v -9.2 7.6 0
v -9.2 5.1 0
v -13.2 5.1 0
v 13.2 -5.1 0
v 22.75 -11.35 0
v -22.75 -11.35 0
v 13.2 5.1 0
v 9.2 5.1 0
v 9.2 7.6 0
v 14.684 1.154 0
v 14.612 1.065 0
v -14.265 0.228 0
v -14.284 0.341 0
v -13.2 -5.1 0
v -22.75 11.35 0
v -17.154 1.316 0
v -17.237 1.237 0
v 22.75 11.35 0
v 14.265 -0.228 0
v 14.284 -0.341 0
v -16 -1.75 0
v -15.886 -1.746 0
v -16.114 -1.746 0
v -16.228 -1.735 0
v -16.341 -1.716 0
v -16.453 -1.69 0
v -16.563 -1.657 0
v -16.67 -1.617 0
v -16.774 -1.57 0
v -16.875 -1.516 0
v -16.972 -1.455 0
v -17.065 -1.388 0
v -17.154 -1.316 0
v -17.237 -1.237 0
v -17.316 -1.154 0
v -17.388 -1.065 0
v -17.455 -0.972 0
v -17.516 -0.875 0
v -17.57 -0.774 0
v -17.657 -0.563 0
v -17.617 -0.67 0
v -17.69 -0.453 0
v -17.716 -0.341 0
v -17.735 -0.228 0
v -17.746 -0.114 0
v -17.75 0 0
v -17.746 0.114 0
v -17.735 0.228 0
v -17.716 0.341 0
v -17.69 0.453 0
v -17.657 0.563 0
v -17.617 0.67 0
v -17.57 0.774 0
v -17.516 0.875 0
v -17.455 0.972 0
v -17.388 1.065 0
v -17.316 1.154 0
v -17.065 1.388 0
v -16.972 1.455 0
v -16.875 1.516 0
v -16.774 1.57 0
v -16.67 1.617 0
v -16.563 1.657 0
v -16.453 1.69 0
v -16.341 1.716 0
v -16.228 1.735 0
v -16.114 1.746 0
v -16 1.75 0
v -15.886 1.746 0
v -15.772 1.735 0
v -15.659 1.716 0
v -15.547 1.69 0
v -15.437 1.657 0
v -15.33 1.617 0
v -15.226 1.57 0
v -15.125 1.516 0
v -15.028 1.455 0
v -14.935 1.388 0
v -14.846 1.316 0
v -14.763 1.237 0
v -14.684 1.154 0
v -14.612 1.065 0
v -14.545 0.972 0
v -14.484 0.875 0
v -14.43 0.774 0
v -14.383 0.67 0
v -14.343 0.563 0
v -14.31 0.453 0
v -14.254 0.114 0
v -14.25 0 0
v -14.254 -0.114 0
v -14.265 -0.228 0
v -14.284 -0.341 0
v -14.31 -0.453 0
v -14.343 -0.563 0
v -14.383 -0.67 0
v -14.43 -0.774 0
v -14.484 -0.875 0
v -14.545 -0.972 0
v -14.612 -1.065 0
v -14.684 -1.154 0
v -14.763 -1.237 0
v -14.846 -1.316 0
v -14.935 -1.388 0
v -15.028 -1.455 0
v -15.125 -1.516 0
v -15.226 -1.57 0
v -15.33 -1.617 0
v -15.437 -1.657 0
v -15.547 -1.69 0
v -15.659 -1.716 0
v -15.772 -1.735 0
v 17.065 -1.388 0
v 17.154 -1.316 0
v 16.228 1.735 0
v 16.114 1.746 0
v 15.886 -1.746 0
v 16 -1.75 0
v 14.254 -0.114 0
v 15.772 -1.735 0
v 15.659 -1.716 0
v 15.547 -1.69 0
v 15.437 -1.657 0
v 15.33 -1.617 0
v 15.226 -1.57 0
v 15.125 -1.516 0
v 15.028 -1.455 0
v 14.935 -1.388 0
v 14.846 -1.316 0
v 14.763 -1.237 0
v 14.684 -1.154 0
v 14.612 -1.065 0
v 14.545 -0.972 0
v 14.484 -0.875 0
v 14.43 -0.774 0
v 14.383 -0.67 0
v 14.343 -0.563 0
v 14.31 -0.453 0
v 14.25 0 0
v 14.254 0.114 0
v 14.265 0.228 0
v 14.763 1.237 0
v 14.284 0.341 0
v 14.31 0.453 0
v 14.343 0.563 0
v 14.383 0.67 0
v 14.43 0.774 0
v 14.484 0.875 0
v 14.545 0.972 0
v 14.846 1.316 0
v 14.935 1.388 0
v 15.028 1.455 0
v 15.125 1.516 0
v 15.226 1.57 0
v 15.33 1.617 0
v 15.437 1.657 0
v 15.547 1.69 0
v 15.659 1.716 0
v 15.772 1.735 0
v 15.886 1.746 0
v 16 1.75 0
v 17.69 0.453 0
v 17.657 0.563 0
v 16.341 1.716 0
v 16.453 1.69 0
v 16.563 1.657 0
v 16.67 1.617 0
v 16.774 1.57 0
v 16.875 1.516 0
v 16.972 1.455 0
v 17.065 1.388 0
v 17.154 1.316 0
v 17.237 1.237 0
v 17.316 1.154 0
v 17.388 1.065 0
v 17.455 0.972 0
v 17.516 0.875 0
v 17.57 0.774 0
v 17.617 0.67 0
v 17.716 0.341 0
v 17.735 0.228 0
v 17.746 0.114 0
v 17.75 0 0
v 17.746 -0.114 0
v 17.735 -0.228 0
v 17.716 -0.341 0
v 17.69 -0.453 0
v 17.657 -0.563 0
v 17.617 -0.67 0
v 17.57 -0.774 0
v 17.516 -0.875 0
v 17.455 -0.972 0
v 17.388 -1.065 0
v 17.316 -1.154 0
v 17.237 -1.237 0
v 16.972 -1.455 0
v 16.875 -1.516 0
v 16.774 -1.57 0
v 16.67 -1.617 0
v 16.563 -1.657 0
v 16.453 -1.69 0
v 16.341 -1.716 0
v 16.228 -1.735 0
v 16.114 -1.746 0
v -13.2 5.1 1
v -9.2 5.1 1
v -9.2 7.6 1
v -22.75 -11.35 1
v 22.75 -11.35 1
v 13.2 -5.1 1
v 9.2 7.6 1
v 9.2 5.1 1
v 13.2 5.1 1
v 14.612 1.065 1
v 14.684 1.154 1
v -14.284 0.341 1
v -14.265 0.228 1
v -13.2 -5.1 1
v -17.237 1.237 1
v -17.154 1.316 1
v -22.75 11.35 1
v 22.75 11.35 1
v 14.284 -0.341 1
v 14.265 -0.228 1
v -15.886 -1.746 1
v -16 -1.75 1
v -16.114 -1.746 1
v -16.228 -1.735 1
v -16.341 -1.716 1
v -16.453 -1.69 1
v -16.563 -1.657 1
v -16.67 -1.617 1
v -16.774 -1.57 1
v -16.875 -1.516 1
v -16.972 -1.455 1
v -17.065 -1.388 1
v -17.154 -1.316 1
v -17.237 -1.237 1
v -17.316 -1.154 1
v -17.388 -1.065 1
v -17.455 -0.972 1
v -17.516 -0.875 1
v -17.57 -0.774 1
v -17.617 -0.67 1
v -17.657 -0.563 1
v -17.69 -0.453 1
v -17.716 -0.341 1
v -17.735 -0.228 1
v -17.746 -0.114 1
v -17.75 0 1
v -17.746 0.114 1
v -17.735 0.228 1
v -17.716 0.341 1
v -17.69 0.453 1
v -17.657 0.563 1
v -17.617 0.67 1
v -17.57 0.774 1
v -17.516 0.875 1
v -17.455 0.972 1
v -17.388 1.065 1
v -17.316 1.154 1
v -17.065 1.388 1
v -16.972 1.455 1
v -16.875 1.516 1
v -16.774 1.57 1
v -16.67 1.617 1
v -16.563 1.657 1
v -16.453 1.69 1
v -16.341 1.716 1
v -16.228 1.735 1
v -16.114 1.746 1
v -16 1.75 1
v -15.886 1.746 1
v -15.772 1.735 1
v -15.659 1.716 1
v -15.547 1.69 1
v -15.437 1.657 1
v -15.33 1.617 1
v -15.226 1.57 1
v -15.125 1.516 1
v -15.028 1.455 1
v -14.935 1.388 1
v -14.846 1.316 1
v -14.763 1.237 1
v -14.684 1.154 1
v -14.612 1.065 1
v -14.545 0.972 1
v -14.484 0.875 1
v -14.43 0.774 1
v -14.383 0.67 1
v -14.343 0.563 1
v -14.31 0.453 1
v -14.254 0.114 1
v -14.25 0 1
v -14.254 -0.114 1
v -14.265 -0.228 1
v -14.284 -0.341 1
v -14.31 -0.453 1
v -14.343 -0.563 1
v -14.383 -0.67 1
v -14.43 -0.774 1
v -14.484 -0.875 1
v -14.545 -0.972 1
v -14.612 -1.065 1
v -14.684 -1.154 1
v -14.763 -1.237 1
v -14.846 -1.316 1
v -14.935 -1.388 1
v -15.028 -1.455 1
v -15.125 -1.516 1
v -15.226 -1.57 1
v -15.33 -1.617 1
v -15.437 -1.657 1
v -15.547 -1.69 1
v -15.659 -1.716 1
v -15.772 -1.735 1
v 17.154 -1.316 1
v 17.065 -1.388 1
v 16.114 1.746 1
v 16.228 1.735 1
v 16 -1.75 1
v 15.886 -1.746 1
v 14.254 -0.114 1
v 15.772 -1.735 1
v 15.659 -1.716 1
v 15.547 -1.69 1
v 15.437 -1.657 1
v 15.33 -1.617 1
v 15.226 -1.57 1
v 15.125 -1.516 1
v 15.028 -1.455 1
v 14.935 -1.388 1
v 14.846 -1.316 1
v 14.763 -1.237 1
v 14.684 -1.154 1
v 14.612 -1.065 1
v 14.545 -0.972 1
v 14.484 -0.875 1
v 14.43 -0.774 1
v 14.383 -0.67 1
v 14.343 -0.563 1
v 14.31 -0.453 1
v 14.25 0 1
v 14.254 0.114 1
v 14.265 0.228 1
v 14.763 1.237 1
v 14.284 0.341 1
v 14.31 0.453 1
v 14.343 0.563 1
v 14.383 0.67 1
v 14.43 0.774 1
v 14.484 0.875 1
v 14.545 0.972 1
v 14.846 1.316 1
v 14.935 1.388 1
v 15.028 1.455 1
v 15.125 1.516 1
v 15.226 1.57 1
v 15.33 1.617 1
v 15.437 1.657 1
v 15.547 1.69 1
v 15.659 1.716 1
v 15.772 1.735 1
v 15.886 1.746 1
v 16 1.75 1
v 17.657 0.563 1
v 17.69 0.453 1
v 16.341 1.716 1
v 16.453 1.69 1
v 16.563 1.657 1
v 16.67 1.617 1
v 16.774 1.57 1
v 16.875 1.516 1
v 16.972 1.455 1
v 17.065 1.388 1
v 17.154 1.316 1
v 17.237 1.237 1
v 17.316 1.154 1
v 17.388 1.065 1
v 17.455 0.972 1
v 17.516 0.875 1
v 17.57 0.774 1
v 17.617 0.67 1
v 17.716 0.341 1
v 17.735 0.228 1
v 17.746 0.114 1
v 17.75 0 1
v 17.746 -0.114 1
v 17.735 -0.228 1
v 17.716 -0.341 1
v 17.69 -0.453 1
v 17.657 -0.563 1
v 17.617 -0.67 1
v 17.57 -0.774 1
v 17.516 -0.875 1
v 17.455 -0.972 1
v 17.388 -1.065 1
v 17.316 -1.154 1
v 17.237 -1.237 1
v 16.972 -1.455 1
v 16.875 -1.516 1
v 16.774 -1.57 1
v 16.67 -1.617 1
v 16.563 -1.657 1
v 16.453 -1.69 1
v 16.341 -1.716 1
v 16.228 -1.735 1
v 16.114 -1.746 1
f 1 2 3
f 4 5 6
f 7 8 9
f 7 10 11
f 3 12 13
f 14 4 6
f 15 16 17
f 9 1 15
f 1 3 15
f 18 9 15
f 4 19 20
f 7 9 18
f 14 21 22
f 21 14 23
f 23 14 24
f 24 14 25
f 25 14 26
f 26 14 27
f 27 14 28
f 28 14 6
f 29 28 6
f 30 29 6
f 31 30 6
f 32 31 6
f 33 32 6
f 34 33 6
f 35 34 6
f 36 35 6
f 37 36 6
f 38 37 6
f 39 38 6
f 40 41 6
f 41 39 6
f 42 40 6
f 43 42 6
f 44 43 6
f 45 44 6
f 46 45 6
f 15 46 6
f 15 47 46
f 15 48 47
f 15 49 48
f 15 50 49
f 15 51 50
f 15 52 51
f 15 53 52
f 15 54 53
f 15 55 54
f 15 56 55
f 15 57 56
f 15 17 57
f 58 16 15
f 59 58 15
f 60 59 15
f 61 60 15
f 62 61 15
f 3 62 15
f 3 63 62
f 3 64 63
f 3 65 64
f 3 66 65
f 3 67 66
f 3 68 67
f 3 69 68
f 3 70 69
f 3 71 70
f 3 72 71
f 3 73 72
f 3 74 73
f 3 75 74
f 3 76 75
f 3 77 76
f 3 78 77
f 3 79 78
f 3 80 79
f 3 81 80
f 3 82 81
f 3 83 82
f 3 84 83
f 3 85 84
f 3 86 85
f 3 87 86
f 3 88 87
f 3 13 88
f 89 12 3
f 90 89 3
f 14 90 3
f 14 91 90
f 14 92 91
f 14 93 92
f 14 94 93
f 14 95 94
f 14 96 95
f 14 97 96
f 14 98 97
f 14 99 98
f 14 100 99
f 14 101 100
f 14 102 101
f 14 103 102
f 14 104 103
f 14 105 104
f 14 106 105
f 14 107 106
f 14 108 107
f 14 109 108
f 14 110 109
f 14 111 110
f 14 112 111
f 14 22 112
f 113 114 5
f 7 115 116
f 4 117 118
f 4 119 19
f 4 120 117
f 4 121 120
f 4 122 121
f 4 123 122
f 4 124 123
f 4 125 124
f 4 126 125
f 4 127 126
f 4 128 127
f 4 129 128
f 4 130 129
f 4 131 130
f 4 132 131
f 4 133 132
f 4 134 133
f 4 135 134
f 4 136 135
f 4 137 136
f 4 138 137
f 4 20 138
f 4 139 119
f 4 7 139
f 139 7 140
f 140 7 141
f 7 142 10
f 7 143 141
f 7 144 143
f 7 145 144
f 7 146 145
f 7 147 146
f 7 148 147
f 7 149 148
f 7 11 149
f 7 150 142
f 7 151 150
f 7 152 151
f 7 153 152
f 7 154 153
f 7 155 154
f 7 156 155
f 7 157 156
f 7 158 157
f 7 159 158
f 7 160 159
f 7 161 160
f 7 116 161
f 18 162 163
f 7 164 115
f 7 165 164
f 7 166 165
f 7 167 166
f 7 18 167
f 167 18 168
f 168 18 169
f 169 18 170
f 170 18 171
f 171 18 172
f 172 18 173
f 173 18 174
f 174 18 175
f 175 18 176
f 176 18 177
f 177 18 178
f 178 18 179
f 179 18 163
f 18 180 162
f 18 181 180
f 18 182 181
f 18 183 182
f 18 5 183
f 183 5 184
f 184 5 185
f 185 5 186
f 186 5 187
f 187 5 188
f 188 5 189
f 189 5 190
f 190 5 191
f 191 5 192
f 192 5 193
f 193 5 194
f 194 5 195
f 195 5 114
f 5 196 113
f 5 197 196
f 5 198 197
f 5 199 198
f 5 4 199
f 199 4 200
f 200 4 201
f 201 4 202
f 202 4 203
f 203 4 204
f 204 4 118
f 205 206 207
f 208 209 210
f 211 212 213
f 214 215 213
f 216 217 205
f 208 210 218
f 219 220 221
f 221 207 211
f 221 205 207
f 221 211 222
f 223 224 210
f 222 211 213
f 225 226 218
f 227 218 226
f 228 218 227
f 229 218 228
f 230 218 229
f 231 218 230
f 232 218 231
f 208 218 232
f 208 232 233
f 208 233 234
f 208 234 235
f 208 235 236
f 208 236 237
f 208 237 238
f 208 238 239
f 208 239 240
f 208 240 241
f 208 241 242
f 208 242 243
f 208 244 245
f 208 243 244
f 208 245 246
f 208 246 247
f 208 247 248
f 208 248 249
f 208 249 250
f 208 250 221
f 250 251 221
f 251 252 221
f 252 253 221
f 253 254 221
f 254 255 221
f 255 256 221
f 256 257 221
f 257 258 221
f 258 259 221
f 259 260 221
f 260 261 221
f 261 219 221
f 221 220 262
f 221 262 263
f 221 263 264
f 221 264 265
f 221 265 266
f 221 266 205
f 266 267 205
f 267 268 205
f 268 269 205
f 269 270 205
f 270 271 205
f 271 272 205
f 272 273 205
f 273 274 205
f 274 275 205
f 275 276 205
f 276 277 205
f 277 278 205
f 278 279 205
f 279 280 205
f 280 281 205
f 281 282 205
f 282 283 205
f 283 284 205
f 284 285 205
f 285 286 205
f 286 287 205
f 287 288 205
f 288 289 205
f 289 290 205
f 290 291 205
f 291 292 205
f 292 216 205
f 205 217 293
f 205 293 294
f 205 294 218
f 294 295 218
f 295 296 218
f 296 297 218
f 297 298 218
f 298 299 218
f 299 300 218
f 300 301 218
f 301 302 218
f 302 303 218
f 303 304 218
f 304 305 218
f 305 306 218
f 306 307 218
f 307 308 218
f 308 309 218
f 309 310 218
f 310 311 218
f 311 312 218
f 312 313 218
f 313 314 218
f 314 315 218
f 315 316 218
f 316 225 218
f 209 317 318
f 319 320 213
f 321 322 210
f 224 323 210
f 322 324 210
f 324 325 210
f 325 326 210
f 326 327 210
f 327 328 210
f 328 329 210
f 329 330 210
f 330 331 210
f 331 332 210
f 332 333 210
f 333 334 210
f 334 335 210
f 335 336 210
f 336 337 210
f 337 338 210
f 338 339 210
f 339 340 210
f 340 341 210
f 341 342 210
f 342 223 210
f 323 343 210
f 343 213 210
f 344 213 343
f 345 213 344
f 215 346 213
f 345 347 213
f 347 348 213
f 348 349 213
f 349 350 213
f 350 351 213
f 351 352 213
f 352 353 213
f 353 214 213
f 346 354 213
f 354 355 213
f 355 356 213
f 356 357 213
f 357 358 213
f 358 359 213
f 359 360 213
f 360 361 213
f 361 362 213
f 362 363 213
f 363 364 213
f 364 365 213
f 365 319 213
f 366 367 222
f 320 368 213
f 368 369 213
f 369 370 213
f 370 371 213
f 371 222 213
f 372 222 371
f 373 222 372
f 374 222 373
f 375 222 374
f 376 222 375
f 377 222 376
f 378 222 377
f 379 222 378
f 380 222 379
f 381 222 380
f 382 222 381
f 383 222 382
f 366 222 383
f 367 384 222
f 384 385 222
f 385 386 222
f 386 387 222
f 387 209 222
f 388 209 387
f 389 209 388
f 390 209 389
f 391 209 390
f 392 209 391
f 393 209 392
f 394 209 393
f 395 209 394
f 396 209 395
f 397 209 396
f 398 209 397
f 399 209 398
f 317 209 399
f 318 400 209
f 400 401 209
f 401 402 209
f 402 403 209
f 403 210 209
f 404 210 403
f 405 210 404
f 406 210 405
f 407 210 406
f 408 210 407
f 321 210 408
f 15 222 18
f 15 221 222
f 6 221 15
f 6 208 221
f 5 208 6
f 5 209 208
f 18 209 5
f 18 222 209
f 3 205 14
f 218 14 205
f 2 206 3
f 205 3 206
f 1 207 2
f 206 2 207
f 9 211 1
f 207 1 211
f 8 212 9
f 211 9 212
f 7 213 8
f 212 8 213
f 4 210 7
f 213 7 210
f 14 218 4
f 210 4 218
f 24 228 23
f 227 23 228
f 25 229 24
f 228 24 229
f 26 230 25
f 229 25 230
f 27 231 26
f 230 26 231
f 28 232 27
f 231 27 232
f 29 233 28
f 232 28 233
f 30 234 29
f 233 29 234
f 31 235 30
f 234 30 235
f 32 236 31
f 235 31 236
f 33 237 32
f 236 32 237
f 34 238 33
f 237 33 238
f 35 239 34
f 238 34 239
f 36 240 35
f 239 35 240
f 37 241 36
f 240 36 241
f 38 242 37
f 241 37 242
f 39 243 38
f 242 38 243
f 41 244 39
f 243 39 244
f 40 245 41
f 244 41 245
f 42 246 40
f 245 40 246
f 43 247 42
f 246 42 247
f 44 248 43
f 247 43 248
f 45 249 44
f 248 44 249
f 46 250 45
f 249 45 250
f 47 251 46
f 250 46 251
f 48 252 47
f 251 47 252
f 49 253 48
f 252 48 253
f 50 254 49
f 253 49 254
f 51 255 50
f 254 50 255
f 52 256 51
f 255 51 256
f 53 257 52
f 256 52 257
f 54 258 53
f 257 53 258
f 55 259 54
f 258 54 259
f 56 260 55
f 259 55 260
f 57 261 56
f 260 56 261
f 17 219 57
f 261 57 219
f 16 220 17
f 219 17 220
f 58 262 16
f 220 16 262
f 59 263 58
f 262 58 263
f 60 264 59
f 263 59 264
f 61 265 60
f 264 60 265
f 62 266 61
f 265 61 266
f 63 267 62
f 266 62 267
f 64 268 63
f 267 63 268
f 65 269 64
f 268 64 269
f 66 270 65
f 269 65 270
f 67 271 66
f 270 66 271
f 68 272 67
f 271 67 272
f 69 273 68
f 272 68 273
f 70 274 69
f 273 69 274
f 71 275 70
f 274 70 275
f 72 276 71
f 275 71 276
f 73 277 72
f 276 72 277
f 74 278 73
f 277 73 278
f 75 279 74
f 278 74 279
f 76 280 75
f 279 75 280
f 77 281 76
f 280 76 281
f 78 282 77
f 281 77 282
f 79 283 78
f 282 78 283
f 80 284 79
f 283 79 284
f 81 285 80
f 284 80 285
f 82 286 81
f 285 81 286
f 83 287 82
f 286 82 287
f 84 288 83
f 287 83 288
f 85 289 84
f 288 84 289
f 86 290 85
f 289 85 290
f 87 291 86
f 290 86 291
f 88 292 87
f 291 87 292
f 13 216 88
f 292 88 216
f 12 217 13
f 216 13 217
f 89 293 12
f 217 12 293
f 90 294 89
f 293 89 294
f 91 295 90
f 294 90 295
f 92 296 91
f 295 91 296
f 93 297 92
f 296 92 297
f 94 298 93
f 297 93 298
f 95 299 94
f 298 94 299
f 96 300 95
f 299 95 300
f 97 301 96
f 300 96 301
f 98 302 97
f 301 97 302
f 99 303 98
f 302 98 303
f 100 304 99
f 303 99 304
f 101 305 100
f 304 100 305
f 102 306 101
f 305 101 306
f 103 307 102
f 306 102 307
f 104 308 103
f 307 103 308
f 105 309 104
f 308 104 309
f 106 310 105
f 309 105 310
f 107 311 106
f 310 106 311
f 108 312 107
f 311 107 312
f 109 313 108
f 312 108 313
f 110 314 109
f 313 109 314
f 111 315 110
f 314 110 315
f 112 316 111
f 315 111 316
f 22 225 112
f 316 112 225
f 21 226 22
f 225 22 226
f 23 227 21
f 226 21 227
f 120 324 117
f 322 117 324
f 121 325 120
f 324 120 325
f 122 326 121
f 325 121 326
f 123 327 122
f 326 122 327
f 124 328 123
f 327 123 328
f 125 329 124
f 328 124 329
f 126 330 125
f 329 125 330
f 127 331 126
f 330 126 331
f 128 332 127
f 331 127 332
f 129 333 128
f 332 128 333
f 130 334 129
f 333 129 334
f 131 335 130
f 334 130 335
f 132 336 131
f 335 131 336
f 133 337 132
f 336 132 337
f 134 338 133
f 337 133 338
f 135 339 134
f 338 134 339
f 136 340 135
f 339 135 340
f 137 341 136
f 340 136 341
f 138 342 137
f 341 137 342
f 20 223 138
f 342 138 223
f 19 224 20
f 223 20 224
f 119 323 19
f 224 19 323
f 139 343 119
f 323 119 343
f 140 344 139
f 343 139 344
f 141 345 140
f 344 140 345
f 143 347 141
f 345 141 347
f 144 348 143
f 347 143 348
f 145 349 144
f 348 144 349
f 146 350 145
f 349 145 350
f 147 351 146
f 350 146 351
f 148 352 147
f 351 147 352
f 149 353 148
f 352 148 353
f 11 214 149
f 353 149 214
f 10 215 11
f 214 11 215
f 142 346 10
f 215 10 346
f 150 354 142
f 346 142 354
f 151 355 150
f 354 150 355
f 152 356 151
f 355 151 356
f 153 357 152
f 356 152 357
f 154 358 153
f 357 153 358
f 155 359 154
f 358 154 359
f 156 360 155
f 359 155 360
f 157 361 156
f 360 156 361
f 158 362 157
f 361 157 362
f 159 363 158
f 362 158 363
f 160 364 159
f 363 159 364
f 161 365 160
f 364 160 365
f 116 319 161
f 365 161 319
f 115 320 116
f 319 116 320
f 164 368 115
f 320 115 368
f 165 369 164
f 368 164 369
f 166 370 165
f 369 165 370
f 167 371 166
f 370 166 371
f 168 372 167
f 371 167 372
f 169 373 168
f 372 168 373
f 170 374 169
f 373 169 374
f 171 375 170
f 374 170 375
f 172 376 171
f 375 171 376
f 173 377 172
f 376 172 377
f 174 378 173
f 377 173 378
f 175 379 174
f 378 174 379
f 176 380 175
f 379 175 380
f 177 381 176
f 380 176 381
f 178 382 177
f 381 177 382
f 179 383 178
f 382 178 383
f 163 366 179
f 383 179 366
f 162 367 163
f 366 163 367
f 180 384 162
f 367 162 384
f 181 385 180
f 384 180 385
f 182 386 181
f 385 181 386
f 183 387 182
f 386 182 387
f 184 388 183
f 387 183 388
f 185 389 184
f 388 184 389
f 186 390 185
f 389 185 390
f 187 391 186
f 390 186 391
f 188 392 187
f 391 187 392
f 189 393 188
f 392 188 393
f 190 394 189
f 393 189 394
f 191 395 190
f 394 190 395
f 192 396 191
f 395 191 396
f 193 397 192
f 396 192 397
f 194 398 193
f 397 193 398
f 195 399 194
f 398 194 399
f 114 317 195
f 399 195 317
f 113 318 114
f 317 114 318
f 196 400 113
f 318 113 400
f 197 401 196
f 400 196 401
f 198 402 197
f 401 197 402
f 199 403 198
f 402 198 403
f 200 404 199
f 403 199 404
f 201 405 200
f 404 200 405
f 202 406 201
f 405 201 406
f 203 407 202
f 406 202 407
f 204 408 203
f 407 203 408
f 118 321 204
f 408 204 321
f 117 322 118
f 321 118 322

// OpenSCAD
thickness = 1;
hole_spacing = 32;
hole_diameter = 3.5;
cutout_x = 26.4;
cutout_y = 10.2;
offset_width = 18.4;
offset_length = 2.5;
edge_margin = 5;

$fn = 96;

plate_length = hole_spacing + hole_diameter + 2 * edge_margin;
plate_width = max(hole_diameter, cutout_y + offset_length) + 2 * edge_margin;

assert(thickness > 0, "Thickness must be positive.");
assert(hole_diameter > 0, "Hole diameter must be positive.");
assert(cutout_x > 0 && cutout_y > 0, "Cutout dimensions must be positive.");
assert(edge_margin > 0, "Edge margin must be positive.");
assert(cutout_x < hole_spacing - hole_diameter,
       "The rectangular cutout must fit between the holes.");
assert(offset_width > 0 && offset_width < cutout_x,
    "Offset width must be positive and narrower than the cutout.");
assert(offset_length > 0, "Offset length must be positive.");

linear_extrude(height = thickness)
    difference() {
        square([plate_length, plate_width], center = true);

        for (hole_x = [-hole_spacing / 2, hole_spacing / 2])
            translate([hole_x, 0])
                circle(d = hole_diameter);

        union() {
            square([cutout_x, cutout_y], center = true);
            translate([0, cutout_y / 2 + offset_length / 2])
                square([offset_width, offset_length], center = true);
        }
    }
